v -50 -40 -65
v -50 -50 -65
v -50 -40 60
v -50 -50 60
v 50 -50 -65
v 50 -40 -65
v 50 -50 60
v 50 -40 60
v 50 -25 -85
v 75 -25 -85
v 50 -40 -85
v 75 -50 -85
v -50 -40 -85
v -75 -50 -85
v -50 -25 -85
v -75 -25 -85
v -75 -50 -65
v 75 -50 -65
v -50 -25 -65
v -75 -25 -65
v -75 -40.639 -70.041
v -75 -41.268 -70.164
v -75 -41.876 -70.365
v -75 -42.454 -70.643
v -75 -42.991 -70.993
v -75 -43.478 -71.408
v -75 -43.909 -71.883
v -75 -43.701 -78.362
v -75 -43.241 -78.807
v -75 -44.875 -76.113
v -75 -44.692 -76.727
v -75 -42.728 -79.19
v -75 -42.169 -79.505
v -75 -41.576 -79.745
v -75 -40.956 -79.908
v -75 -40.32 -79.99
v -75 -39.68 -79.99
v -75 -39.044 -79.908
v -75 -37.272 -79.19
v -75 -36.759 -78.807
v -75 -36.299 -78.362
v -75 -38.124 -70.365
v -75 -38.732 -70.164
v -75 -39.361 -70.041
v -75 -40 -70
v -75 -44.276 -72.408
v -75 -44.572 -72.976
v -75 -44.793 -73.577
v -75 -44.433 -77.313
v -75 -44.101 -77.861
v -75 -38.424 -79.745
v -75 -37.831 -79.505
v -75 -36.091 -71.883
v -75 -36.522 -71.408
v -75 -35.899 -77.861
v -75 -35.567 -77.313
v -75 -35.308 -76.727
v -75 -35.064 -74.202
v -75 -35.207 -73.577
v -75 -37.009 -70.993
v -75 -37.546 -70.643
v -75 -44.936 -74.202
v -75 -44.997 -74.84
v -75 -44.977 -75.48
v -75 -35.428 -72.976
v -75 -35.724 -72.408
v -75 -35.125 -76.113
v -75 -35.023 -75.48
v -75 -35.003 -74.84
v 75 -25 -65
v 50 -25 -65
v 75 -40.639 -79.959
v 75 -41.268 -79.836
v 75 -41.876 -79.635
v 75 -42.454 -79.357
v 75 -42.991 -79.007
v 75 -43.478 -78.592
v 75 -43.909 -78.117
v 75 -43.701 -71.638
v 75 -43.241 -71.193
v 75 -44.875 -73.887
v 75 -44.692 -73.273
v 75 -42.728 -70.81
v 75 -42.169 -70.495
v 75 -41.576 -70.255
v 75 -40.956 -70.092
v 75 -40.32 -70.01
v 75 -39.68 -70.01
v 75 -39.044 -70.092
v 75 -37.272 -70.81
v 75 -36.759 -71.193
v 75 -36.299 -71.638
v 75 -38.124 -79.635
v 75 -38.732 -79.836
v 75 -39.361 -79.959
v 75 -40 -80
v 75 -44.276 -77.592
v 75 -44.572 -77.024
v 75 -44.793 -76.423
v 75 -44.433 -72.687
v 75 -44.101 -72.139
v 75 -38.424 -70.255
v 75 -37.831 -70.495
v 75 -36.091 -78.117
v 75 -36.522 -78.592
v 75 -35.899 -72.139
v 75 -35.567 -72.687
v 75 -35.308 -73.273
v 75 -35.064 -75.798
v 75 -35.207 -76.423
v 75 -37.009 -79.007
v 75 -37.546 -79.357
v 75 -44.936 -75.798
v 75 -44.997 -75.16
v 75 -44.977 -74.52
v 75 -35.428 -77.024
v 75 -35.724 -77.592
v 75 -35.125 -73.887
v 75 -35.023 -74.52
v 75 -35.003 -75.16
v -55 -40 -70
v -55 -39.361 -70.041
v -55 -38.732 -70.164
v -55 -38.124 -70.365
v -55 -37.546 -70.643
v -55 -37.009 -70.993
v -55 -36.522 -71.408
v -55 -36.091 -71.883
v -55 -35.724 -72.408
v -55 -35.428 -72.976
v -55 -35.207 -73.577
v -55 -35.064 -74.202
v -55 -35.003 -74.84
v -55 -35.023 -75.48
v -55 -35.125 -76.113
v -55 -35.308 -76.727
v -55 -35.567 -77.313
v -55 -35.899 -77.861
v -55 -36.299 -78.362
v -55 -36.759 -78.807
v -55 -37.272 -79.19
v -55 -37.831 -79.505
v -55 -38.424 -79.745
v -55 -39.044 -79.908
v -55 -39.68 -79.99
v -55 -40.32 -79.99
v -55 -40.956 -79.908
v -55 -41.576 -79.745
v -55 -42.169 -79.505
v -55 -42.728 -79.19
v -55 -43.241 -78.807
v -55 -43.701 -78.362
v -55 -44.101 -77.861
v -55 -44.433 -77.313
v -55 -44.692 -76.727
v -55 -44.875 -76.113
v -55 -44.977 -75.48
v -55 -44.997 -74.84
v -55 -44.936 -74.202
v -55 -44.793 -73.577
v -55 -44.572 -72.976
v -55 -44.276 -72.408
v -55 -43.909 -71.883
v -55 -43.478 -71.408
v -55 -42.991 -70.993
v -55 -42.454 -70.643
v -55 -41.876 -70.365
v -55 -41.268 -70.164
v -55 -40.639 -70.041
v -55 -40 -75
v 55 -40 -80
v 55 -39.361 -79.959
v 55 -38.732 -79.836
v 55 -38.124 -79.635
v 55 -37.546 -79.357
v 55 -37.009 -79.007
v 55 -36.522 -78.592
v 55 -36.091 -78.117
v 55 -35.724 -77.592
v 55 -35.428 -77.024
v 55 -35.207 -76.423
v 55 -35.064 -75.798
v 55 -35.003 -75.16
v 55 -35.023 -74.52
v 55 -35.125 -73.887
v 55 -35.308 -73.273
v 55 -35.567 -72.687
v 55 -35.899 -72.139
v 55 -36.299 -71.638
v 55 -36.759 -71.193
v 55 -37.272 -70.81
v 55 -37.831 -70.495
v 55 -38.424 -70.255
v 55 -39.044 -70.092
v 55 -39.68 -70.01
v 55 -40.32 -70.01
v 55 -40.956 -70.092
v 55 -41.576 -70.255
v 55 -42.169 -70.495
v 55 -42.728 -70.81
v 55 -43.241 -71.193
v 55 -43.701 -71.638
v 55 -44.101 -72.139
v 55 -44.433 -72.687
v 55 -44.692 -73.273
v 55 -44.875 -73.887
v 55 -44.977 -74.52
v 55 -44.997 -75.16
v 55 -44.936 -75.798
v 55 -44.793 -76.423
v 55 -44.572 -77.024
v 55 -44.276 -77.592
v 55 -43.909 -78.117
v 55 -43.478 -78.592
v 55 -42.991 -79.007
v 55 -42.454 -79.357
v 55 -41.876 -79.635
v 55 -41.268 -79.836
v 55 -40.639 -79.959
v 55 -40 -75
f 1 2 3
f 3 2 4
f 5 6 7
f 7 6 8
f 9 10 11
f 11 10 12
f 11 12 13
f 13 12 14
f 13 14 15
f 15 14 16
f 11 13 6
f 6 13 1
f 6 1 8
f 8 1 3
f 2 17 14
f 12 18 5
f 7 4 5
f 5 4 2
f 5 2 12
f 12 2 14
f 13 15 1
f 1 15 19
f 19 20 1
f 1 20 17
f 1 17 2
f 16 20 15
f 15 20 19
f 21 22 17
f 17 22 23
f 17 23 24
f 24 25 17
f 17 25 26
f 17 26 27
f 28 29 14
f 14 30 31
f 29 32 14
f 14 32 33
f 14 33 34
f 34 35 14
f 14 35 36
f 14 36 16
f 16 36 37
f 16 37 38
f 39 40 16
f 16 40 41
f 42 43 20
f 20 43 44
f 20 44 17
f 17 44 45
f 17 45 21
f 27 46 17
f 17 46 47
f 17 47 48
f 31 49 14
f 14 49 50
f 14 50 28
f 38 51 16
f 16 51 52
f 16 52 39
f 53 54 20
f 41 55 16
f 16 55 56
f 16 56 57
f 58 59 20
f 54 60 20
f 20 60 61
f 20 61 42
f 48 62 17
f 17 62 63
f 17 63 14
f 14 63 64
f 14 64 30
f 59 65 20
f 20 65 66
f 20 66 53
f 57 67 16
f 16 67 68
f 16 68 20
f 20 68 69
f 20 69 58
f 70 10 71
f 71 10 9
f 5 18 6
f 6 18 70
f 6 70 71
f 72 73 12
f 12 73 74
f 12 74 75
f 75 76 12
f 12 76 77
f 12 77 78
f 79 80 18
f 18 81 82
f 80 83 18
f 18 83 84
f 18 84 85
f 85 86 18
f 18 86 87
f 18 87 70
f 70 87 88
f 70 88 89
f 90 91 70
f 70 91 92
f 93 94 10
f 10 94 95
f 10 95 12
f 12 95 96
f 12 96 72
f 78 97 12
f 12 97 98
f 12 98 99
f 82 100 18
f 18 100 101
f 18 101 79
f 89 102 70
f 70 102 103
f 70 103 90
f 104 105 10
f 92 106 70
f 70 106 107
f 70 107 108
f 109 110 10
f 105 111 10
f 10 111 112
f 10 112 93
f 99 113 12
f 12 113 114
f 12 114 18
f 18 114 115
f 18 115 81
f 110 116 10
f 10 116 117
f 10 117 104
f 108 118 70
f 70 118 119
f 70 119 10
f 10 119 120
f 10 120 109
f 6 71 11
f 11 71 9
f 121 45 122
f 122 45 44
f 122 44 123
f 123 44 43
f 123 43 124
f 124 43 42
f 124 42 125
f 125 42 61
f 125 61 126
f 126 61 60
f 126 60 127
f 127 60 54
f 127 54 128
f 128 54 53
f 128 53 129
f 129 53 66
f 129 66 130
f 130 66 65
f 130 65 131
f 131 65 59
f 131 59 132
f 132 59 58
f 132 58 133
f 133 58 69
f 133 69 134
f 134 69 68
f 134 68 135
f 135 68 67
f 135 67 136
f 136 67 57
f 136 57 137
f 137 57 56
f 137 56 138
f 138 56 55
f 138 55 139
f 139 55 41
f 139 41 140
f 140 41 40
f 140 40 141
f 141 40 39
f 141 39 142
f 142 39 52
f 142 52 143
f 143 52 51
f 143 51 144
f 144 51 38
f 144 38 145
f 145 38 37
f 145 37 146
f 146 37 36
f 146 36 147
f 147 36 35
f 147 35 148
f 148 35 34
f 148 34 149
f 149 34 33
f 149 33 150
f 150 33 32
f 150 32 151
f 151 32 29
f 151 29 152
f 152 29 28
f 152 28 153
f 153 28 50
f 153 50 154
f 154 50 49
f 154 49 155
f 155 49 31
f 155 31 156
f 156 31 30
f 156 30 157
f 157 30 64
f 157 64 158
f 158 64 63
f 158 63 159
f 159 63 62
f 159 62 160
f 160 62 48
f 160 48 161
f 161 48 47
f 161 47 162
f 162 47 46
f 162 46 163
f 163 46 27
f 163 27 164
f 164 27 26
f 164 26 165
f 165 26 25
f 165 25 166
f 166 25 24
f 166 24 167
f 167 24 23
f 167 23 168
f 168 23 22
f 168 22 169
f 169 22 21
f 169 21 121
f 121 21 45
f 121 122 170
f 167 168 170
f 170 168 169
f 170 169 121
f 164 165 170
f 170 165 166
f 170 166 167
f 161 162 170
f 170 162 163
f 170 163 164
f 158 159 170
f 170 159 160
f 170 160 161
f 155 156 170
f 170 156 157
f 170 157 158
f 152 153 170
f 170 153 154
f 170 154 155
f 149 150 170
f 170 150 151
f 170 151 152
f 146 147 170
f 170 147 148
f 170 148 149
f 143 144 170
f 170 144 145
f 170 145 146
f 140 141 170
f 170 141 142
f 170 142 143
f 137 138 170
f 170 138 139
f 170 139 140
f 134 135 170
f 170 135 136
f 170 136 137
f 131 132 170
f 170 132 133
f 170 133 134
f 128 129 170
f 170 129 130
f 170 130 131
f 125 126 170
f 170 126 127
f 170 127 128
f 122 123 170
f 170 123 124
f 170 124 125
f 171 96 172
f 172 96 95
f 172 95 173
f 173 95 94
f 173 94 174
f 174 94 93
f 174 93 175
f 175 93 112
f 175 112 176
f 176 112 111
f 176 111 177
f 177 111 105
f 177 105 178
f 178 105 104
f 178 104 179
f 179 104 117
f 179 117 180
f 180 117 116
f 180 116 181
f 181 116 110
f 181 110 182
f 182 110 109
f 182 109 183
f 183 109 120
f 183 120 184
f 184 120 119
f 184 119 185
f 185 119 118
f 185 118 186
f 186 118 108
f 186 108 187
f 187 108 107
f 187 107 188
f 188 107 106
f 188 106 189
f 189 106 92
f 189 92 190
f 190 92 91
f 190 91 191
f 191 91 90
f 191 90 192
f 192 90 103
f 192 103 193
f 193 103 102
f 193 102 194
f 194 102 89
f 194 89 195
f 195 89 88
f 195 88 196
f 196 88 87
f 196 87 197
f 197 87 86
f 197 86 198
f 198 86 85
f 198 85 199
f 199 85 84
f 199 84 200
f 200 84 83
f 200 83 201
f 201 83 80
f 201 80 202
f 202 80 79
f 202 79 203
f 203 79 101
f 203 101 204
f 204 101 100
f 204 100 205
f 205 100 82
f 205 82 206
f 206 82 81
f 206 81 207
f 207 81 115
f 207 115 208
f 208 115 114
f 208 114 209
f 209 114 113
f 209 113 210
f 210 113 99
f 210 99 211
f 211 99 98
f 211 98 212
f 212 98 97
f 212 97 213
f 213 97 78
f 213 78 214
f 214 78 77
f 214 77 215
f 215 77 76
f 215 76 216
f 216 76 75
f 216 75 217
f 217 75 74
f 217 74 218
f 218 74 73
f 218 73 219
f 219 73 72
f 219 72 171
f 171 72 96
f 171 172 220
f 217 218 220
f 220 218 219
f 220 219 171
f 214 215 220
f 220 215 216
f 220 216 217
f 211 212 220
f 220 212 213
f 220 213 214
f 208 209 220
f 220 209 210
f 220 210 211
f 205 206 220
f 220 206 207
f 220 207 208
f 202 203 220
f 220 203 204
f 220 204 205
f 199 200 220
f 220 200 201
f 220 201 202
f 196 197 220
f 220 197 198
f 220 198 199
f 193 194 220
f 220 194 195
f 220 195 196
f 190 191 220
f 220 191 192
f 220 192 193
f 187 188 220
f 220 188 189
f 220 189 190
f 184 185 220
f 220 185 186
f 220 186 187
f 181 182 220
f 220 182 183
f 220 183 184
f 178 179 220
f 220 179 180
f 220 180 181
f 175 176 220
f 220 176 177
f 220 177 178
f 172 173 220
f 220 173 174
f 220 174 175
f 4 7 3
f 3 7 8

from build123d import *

# Parameters (mm, degrees)
SKETCH5_W           = 100
SKETCH5_H           = 170
BOSS_EXTRUDE2_DEPTH = 10
SKETCH7_W           = 20
SKETCH7_H           = 25
BOSS_EXTRUDE3_DEPTH = 25
SKETCH8_W           = 20
SKETCH8_H           = 25
BOSS_EXTRUDE4_DEPTH = 25
SKETCH11_R          = 5
CUT_EXTRUDE1_DEPTH  = 20
CUT_EXTRUDE2_START  = -20
SKETCH12_R          = 5
CUT_EXTRUDE2_DEPTH  = 20
SKETCH17_W          = 100
SKETCH17_H          = 10
BOSS_EXTRUDE6_DEPTH = 100
SKETCH18_W          = 100
SKETCH18_H          = 125
CUT_EXTRUDE3_DEPTH  = 10


with BuildPart() as part:
    # Sketch5 → Boss-Extrude2 (new body)
    with BuildSketch(Plane(origin=(0, -50, 0), x_dir=(-1, 0, 0), z_dir=(0, -1, 0))):
        Rectangle(SKETCH5_W, SKETCH5_H)
    extrude(amount=-BOSS_EXTRUDE2_DEPTH)

    # Sketch7 → Boss-Extrude3 (add)
    with BuildSketch(Plane.ZY.offset(50)):
        with Locations((-75, -37.5)):
            Rectangle(SKETCH7_W, SKETCH7_H)
    extrude(amount=BOSS_EXTRUDE3_DEPTH)

    # Sketch8 → Boss-Extrude4 (add)
    with BuildSketch(Plane(origin=(50, 0, 0), x_dir=(0, 0, -1), z_dir=(1, 0, 0))):
        with Locations((75, -37.5)):
            Rectangle(SKETCH8_W, SKETCH8_H)
    extrude(amount=BOSS_EXTRUDE4_DEPTH)

    # Sketch11 → Cut-Extrude1 (cut)
    with BuildSketch(Plane.ZY.offset(75)):
        with Locations((-75, -40)):
            Circle(SKETCH11_R)
    extrude(amount=-CUT_EXTRUDE1_DEPTH, mode=Mode.SUBTRACT)

    # Sketch12 → Cut-Extrude2 (cut)
    with BuildSketch(Plane(origin=(75, 0, 0), x_dir=(0, 0, -1), z_dir=(1, 0, 0)).offset(CUT_EXTRUDE2_START)):
        with Locations(Location((75, -40, 0), (0, 0, 180))):
            Circle(SKETCH12_R)
    extrude(amount=CUT_EXTRUDE2_DEPTH, mode=Mode.SUBTRACT)

    # Sketch17 → Boss-Extrude6 (add)
    with BuildSketch(Plane.XY.offset(85)):
        with Locations((0, -45)):
            Rectangle(SKETCH17_W, SKETCH17_H)
    extrude(amount=BOSS_EXTRUDE6_DEPTH)

    # Sketch18 → Cut-Extrude3 (cut)
    with BuildSketch(Plane(origin=(0, -40, 0), x_dir=(1, 0, 0), z_dir=(0, 1, 0))):
        with Locations((0, -122.5)):
            Rectangle(SKETCH18_W, SKETCH18_H)
    extrude(amount=-CUT_EXTRUDE3_DEPTH, mode=Mode.SUBTRACT)


solid = part.part
